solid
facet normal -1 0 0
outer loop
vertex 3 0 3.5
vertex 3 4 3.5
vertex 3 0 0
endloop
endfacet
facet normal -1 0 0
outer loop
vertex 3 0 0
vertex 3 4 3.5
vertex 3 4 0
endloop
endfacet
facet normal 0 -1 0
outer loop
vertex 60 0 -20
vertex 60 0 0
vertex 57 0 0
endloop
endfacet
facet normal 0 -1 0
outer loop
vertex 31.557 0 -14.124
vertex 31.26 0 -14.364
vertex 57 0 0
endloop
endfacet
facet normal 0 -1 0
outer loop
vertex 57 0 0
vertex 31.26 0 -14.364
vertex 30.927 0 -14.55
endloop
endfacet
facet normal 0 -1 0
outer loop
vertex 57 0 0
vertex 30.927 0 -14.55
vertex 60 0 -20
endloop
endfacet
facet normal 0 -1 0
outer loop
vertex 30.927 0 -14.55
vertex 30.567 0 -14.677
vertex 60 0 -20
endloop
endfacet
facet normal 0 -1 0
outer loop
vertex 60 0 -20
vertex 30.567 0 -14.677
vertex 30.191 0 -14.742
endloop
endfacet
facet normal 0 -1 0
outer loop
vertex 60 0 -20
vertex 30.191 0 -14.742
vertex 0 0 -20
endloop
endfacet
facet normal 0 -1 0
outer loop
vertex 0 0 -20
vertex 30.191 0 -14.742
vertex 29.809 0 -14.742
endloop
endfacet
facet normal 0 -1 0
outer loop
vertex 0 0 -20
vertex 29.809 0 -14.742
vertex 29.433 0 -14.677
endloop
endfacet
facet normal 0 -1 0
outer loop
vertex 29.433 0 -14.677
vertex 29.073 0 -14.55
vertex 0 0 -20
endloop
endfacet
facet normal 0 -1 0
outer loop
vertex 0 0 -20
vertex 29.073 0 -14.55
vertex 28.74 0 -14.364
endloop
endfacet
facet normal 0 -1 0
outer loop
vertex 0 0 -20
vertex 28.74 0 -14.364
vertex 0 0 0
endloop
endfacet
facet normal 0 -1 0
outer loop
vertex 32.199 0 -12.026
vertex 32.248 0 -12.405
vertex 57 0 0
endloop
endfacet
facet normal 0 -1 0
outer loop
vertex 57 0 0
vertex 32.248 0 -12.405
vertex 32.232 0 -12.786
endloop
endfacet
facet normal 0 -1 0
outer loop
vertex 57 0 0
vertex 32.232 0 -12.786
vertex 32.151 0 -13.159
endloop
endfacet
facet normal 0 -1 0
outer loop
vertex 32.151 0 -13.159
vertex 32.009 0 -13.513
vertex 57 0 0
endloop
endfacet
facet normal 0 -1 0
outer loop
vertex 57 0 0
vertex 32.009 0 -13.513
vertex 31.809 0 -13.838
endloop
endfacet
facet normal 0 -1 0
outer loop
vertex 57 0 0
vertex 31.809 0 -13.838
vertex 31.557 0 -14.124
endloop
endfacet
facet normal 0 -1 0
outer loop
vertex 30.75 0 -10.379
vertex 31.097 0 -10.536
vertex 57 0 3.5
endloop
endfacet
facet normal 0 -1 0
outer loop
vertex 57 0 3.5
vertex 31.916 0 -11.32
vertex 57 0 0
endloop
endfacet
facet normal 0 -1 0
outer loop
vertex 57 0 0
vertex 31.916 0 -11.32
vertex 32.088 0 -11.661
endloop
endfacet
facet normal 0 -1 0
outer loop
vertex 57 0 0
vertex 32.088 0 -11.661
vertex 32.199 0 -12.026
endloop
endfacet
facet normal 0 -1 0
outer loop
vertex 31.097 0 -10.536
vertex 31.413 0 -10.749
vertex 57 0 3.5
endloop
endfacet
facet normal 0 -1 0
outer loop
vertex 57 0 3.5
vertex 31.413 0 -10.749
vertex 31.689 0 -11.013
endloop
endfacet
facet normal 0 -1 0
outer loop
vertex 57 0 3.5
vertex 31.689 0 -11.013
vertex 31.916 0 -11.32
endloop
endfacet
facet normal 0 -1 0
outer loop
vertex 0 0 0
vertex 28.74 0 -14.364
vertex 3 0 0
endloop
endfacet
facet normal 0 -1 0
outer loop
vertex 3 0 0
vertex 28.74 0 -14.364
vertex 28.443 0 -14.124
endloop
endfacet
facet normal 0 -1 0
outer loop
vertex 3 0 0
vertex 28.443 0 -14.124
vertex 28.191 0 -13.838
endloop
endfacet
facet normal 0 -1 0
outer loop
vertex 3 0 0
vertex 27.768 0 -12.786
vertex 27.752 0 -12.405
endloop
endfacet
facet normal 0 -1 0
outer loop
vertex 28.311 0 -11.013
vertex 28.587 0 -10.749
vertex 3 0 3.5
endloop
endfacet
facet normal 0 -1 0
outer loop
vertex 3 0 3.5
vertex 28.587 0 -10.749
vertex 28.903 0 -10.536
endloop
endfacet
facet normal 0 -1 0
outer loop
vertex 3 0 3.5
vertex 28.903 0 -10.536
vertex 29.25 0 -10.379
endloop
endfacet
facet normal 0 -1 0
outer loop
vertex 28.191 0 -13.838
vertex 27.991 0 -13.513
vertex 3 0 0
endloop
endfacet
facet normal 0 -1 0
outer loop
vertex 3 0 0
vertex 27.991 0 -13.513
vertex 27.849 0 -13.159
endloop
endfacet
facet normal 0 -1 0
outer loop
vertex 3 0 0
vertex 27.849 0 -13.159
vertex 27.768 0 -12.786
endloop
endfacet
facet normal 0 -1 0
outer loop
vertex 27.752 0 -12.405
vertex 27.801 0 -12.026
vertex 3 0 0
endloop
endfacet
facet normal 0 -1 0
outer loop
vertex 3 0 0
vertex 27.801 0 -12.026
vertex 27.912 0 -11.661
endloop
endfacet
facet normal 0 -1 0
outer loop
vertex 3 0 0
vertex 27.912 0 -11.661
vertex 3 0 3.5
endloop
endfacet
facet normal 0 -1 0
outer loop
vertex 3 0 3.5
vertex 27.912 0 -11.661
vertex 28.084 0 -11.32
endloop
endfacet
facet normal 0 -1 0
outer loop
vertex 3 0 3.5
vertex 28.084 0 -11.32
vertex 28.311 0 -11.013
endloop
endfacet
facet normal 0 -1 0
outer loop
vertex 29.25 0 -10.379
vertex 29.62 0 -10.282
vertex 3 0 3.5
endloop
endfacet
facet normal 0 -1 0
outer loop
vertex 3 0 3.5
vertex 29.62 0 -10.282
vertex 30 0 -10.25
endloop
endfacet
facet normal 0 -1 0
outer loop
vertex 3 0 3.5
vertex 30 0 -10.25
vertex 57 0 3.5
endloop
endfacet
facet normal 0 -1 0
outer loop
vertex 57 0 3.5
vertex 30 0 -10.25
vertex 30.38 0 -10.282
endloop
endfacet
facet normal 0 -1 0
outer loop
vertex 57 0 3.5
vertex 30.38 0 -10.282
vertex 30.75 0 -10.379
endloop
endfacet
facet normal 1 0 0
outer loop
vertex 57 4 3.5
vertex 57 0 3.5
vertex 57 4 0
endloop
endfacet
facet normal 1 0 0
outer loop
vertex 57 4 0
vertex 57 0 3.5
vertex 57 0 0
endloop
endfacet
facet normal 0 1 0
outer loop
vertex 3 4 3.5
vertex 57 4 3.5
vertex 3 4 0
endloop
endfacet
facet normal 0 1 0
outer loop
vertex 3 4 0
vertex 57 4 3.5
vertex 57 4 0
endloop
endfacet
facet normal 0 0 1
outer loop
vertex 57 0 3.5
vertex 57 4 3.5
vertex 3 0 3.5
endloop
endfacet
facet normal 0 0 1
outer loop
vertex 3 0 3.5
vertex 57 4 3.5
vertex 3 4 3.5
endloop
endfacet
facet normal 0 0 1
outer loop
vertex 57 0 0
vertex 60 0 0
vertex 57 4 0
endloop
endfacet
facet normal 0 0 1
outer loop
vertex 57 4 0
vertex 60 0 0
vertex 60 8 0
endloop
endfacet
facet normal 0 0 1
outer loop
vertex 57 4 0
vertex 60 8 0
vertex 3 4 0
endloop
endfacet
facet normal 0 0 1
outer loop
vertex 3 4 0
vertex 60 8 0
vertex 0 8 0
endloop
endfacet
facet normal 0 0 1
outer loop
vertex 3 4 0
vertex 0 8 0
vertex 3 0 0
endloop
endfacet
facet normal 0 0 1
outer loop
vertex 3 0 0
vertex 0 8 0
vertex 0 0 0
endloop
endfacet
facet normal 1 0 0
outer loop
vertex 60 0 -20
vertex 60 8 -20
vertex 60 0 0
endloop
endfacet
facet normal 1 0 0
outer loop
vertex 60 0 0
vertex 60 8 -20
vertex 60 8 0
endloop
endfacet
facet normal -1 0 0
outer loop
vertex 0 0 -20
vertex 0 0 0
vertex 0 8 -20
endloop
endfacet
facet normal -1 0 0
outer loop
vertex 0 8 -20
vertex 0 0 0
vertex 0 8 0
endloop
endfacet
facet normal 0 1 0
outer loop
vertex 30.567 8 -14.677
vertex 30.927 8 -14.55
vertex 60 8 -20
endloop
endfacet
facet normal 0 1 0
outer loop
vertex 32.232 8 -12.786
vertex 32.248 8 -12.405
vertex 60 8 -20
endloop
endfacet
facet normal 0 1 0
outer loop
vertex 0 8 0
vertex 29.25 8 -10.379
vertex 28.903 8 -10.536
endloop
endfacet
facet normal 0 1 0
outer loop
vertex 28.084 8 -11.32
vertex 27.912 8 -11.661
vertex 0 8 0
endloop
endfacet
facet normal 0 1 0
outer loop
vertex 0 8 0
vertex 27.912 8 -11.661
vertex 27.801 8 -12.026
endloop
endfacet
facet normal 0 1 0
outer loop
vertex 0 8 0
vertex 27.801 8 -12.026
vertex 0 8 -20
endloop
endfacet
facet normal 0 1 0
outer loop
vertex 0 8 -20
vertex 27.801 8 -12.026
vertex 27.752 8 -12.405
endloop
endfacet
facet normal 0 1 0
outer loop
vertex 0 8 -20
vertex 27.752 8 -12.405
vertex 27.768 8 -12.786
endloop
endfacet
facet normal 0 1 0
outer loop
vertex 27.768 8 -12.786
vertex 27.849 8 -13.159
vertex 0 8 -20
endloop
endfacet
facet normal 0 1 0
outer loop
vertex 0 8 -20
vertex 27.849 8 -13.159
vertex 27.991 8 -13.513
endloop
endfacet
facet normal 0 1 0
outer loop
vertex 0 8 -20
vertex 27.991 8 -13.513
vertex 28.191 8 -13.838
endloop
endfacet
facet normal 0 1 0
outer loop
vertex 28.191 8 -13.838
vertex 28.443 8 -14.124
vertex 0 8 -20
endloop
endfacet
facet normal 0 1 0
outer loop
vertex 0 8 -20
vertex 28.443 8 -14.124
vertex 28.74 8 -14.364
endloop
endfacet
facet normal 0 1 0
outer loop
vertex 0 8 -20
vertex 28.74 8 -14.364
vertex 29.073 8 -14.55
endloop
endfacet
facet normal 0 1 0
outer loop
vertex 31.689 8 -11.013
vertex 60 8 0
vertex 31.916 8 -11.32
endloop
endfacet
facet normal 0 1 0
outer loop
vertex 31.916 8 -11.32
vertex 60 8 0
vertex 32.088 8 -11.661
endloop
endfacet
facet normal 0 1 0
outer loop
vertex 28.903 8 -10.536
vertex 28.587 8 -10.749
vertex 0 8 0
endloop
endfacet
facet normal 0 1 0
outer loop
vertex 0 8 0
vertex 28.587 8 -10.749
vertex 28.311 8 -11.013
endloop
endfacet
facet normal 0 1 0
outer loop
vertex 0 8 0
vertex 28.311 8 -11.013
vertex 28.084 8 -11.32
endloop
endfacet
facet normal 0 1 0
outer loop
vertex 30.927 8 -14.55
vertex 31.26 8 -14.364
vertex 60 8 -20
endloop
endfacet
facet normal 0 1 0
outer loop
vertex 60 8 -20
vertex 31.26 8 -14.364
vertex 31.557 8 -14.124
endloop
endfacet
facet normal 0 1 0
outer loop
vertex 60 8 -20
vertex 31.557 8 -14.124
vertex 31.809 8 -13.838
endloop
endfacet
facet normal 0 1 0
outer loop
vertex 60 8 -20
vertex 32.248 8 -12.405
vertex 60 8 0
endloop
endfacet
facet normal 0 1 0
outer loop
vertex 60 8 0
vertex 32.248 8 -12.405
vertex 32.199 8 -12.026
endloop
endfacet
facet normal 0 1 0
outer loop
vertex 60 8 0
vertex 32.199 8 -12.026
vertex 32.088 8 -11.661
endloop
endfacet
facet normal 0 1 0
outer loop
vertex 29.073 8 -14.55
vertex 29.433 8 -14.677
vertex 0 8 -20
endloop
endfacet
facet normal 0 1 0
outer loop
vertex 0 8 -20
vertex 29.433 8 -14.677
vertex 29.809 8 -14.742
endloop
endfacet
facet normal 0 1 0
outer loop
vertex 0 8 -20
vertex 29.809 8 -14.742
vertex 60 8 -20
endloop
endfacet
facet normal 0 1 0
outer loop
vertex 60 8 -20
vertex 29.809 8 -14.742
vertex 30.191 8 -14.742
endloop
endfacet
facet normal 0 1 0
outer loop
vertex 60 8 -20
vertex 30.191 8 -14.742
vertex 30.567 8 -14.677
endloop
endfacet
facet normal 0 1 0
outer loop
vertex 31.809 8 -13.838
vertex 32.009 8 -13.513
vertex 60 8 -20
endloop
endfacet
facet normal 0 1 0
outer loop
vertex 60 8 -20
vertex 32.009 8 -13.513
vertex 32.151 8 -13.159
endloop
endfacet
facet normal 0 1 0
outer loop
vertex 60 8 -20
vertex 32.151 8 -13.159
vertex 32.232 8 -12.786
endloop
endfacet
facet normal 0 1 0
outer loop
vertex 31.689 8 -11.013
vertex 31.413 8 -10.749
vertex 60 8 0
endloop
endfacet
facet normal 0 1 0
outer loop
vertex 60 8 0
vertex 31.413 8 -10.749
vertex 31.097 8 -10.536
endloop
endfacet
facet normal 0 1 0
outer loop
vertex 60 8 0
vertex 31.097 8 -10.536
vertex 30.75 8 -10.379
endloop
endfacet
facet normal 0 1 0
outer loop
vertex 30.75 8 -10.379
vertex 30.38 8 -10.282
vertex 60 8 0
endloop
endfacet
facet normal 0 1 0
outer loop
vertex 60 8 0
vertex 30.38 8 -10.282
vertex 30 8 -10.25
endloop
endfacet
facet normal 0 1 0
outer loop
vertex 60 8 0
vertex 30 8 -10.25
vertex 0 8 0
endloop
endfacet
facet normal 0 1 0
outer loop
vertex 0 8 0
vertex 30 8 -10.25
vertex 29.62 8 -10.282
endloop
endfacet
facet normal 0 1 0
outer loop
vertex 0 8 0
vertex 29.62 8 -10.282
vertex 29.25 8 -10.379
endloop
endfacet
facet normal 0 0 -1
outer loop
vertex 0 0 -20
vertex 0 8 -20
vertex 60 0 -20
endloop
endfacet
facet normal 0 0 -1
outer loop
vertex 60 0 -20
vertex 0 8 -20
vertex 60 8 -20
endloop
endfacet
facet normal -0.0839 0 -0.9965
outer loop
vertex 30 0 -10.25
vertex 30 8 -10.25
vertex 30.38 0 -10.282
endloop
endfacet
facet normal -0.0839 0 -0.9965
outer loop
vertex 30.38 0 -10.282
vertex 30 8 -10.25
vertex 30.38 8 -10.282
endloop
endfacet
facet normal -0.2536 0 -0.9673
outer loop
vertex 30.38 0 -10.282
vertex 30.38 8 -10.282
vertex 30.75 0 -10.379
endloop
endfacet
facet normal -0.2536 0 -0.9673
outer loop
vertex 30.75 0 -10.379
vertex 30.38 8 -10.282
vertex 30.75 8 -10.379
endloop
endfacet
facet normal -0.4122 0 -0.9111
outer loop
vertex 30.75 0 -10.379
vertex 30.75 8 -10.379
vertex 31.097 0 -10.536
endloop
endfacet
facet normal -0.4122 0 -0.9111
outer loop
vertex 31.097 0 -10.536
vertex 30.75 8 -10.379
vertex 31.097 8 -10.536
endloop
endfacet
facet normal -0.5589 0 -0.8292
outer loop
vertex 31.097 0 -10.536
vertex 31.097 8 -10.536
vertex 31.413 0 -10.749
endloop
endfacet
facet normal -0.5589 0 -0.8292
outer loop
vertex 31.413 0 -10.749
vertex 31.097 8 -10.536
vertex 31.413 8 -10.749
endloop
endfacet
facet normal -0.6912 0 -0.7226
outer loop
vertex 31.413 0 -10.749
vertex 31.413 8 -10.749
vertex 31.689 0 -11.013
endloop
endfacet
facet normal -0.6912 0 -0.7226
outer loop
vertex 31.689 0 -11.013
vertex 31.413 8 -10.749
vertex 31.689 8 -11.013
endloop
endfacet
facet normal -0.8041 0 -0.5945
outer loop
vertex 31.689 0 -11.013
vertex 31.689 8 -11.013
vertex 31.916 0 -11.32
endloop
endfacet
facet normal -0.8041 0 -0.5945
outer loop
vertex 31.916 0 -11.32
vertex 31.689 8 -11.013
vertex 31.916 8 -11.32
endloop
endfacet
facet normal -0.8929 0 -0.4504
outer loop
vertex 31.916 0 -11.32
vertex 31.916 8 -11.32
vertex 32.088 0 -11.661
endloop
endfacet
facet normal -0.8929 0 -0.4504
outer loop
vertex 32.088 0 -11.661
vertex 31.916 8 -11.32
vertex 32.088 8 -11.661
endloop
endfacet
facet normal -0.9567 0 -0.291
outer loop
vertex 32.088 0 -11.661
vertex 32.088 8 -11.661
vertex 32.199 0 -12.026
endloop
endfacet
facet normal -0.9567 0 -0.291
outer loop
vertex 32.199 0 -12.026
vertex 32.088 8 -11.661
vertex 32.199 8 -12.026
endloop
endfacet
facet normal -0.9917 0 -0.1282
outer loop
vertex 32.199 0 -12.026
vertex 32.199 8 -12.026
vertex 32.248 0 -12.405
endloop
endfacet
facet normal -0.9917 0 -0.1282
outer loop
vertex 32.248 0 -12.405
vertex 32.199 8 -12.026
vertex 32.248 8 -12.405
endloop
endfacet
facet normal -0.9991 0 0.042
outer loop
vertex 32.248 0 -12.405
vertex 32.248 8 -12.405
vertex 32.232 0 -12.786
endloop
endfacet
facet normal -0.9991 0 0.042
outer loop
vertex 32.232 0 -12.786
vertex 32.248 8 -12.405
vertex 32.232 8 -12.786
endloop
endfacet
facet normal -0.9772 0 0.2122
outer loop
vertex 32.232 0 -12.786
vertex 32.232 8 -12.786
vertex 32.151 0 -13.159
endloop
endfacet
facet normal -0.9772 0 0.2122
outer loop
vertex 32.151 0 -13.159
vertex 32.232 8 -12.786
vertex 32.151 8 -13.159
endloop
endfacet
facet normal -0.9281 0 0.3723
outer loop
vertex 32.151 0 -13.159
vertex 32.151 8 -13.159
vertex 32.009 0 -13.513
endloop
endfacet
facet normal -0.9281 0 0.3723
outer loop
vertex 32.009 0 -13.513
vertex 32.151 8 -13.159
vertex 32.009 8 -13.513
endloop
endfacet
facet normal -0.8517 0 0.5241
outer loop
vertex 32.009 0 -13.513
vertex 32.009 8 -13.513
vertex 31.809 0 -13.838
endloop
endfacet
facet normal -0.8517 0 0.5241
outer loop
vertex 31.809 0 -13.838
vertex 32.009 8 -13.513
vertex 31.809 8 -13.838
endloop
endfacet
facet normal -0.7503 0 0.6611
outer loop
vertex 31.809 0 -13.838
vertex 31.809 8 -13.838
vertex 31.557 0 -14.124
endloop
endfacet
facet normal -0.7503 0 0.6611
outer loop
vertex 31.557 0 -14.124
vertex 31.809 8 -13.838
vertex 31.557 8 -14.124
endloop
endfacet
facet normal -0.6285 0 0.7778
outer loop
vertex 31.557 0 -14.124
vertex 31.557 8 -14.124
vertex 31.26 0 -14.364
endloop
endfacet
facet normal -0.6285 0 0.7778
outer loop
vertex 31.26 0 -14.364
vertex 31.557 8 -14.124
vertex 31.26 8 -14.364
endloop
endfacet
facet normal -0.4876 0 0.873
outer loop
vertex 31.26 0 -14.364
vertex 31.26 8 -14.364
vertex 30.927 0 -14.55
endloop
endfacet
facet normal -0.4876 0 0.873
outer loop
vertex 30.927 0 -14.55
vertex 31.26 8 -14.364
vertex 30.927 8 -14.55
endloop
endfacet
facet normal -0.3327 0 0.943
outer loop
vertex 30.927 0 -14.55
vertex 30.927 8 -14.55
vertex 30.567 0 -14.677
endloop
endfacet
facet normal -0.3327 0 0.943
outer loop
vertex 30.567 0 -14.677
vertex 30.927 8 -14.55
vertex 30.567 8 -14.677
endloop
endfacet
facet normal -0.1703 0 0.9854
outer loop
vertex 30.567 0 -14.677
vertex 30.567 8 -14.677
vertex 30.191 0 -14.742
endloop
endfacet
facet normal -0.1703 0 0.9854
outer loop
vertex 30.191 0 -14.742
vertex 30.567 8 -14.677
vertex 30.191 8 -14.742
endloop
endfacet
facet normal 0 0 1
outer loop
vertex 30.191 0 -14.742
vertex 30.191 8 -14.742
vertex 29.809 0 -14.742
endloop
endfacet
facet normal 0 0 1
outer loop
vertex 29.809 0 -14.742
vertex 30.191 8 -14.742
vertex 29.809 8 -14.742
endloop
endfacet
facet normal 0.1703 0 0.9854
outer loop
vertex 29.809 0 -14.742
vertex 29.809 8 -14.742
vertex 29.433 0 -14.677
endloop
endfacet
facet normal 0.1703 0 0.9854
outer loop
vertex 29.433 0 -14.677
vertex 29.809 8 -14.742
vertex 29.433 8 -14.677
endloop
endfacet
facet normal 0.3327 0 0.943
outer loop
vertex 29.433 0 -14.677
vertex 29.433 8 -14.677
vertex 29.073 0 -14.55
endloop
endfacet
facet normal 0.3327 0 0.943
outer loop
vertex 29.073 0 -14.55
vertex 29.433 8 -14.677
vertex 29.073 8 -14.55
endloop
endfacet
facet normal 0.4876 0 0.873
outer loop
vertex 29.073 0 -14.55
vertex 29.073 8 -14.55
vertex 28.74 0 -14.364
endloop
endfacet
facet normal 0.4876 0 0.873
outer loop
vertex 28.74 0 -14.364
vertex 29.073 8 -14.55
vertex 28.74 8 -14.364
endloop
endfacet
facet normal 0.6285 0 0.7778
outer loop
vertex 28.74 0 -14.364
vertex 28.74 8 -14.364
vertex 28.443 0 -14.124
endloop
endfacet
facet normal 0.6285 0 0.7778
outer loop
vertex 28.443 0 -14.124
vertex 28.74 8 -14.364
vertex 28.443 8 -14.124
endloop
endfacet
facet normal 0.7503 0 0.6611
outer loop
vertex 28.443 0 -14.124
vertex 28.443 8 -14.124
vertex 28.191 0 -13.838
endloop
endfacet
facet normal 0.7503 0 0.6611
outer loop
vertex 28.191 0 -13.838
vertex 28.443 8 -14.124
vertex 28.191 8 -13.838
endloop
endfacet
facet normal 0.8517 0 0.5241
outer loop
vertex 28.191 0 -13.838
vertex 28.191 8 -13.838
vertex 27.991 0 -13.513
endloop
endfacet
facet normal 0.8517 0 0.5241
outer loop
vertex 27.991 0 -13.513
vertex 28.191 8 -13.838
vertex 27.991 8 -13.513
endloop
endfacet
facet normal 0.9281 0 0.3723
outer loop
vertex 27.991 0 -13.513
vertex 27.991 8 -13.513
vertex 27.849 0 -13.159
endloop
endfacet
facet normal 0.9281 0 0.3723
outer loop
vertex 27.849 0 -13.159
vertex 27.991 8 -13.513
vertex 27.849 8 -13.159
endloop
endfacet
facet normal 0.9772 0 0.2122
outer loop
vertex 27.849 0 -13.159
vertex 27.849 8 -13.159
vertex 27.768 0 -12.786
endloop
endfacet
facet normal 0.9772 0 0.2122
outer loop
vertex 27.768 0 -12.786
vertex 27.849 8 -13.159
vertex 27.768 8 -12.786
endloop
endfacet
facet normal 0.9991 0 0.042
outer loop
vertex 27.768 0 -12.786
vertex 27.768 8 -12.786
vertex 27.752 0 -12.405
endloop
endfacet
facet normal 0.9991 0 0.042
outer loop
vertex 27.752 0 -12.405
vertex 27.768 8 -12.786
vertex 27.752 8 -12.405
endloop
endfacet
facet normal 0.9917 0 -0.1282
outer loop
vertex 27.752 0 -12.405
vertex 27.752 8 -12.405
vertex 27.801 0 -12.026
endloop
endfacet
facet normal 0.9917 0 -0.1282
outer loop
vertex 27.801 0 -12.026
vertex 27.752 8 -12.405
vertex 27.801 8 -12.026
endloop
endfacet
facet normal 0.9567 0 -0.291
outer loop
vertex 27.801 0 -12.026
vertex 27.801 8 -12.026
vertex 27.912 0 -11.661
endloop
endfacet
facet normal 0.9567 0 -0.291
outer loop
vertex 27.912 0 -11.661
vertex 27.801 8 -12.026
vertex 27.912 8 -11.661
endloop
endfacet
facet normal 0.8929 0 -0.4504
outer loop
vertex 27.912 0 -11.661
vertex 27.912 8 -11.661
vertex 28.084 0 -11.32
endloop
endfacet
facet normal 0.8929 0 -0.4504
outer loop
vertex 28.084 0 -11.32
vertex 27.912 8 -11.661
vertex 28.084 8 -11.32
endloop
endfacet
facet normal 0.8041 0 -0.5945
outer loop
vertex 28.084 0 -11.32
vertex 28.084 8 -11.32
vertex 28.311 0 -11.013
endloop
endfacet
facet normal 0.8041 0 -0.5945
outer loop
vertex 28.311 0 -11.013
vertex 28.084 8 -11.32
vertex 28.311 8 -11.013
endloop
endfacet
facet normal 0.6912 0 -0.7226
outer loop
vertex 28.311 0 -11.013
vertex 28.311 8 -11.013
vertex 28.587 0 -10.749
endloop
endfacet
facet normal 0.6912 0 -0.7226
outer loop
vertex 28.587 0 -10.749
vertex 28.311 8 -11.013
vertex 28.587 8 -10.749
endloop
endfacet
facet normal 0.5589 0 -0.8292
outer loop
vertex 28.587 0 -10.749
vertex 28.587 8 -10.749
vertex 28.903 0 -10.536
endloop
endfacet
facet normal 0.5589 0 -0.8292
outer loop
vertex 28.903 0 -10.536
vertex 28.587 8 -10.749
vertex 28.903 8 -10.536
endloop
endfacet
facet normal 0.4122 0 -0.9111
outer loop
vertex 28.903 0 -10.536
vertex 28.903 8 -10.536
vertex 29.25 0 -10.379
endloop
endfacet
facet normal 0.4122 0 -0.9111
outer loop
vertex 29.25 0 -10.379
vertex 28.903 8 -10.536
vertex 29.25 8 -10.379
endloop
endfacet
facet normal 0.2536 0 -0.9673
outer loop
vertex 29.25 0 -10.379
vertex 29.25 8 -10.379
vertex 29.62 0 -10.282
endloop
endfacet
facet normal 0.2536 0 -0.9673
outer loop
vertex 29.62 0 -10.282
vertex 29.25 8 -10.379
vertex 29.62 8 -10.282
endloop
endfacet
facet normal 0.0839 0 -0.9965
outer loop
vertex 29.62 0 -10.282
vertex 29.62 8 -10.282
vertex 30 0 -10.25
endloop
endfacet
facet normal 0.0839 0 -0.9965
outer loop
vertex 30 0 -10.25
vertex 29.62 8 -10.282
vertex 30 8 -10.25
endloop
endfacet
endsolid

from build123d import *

# Parameters (mm, degrees)
SKETCH_1_W          = 54
SKETCH_1_H          = 4
EXTRUDE_2_DEPTH     = 3.5
SKETCH_2_W          = 60
SKETCH_2_H          = 11
EXTRUDE_3_DEPTH     = 5
SKETCH_3_W          = 60
SKETCH_3_H          = 3
CUT_EXTRUDE_1_DEPTH = 10
SKETCH_4_W          = 60
SKETCH_4_H          = 8
EXTRUDE_4_DEPTH     = 15
SKETCH_5_R          = 2.25
CUT_EXTRUDE_2_DEPTH = 64.749509802


with BuildPart() as part:
    # 스케치1 → 보스-돌출2 (new body)
    with BuildSketch(Plane.XY):
        with Locations((30, 2)):
            Rectangle(SKETCH_1_W, SKETCH_1_H)
    extrude(amount=EXTRUDE_2_DEPTH)

    # 스케치2 → 보스-돌출3 (add)
    with BuildSketch(Plane(origin=(0, 0, 0), x_dir=(-1, 0, 0), z_dir=(0, 0, -1))):
        with Locations((-30, 2.5)):
            Rectangle(SKETCH_2_W, SKETCH_2_H)
    extrude(amount=EXTRUDE_3_DEPTH)

    # 스케치3 → 컷-돌출1 (cut)
    with BuildSketch(Plane.XY):
        with Locations((30, -1.5)):
            Rectangle(SKETCH_3_W, SKETCH_3_H)
    extrude(amount=-CUT_EXTRUDE_1_DEPTH, mode=Mode.SUBTRACT)

    # 스케치4 → 보스-돌출4 (add)
    with BuildSketch(Plane(origin=(0, 0, -5), x_dir=(-1, 0, 0), z_dir=(0, 0, -1))):
        with Locations((-30, 4)):
            Rectangle(SKETCH_4_W, SKETCH_4_H)
    extrude(amount=EXTRUDE_4_DEPTH)

    # 스케치5 → 컷-돌출2 (cut, through all)
    with BuildSketch(Plane(origin=(0, 8, 0), x_dir=(1, 0, 0), z_dir=(0, 1, 0))):
        with Locations(Location((30, 12.5, 0), (0, 0, 270))):
            Circle(SKETCH_5_R)
    extrude(amount=-CUT_EXTRUDE_2_DEPTH, mode=Mode.SUBTRACT)


solid = part.part
